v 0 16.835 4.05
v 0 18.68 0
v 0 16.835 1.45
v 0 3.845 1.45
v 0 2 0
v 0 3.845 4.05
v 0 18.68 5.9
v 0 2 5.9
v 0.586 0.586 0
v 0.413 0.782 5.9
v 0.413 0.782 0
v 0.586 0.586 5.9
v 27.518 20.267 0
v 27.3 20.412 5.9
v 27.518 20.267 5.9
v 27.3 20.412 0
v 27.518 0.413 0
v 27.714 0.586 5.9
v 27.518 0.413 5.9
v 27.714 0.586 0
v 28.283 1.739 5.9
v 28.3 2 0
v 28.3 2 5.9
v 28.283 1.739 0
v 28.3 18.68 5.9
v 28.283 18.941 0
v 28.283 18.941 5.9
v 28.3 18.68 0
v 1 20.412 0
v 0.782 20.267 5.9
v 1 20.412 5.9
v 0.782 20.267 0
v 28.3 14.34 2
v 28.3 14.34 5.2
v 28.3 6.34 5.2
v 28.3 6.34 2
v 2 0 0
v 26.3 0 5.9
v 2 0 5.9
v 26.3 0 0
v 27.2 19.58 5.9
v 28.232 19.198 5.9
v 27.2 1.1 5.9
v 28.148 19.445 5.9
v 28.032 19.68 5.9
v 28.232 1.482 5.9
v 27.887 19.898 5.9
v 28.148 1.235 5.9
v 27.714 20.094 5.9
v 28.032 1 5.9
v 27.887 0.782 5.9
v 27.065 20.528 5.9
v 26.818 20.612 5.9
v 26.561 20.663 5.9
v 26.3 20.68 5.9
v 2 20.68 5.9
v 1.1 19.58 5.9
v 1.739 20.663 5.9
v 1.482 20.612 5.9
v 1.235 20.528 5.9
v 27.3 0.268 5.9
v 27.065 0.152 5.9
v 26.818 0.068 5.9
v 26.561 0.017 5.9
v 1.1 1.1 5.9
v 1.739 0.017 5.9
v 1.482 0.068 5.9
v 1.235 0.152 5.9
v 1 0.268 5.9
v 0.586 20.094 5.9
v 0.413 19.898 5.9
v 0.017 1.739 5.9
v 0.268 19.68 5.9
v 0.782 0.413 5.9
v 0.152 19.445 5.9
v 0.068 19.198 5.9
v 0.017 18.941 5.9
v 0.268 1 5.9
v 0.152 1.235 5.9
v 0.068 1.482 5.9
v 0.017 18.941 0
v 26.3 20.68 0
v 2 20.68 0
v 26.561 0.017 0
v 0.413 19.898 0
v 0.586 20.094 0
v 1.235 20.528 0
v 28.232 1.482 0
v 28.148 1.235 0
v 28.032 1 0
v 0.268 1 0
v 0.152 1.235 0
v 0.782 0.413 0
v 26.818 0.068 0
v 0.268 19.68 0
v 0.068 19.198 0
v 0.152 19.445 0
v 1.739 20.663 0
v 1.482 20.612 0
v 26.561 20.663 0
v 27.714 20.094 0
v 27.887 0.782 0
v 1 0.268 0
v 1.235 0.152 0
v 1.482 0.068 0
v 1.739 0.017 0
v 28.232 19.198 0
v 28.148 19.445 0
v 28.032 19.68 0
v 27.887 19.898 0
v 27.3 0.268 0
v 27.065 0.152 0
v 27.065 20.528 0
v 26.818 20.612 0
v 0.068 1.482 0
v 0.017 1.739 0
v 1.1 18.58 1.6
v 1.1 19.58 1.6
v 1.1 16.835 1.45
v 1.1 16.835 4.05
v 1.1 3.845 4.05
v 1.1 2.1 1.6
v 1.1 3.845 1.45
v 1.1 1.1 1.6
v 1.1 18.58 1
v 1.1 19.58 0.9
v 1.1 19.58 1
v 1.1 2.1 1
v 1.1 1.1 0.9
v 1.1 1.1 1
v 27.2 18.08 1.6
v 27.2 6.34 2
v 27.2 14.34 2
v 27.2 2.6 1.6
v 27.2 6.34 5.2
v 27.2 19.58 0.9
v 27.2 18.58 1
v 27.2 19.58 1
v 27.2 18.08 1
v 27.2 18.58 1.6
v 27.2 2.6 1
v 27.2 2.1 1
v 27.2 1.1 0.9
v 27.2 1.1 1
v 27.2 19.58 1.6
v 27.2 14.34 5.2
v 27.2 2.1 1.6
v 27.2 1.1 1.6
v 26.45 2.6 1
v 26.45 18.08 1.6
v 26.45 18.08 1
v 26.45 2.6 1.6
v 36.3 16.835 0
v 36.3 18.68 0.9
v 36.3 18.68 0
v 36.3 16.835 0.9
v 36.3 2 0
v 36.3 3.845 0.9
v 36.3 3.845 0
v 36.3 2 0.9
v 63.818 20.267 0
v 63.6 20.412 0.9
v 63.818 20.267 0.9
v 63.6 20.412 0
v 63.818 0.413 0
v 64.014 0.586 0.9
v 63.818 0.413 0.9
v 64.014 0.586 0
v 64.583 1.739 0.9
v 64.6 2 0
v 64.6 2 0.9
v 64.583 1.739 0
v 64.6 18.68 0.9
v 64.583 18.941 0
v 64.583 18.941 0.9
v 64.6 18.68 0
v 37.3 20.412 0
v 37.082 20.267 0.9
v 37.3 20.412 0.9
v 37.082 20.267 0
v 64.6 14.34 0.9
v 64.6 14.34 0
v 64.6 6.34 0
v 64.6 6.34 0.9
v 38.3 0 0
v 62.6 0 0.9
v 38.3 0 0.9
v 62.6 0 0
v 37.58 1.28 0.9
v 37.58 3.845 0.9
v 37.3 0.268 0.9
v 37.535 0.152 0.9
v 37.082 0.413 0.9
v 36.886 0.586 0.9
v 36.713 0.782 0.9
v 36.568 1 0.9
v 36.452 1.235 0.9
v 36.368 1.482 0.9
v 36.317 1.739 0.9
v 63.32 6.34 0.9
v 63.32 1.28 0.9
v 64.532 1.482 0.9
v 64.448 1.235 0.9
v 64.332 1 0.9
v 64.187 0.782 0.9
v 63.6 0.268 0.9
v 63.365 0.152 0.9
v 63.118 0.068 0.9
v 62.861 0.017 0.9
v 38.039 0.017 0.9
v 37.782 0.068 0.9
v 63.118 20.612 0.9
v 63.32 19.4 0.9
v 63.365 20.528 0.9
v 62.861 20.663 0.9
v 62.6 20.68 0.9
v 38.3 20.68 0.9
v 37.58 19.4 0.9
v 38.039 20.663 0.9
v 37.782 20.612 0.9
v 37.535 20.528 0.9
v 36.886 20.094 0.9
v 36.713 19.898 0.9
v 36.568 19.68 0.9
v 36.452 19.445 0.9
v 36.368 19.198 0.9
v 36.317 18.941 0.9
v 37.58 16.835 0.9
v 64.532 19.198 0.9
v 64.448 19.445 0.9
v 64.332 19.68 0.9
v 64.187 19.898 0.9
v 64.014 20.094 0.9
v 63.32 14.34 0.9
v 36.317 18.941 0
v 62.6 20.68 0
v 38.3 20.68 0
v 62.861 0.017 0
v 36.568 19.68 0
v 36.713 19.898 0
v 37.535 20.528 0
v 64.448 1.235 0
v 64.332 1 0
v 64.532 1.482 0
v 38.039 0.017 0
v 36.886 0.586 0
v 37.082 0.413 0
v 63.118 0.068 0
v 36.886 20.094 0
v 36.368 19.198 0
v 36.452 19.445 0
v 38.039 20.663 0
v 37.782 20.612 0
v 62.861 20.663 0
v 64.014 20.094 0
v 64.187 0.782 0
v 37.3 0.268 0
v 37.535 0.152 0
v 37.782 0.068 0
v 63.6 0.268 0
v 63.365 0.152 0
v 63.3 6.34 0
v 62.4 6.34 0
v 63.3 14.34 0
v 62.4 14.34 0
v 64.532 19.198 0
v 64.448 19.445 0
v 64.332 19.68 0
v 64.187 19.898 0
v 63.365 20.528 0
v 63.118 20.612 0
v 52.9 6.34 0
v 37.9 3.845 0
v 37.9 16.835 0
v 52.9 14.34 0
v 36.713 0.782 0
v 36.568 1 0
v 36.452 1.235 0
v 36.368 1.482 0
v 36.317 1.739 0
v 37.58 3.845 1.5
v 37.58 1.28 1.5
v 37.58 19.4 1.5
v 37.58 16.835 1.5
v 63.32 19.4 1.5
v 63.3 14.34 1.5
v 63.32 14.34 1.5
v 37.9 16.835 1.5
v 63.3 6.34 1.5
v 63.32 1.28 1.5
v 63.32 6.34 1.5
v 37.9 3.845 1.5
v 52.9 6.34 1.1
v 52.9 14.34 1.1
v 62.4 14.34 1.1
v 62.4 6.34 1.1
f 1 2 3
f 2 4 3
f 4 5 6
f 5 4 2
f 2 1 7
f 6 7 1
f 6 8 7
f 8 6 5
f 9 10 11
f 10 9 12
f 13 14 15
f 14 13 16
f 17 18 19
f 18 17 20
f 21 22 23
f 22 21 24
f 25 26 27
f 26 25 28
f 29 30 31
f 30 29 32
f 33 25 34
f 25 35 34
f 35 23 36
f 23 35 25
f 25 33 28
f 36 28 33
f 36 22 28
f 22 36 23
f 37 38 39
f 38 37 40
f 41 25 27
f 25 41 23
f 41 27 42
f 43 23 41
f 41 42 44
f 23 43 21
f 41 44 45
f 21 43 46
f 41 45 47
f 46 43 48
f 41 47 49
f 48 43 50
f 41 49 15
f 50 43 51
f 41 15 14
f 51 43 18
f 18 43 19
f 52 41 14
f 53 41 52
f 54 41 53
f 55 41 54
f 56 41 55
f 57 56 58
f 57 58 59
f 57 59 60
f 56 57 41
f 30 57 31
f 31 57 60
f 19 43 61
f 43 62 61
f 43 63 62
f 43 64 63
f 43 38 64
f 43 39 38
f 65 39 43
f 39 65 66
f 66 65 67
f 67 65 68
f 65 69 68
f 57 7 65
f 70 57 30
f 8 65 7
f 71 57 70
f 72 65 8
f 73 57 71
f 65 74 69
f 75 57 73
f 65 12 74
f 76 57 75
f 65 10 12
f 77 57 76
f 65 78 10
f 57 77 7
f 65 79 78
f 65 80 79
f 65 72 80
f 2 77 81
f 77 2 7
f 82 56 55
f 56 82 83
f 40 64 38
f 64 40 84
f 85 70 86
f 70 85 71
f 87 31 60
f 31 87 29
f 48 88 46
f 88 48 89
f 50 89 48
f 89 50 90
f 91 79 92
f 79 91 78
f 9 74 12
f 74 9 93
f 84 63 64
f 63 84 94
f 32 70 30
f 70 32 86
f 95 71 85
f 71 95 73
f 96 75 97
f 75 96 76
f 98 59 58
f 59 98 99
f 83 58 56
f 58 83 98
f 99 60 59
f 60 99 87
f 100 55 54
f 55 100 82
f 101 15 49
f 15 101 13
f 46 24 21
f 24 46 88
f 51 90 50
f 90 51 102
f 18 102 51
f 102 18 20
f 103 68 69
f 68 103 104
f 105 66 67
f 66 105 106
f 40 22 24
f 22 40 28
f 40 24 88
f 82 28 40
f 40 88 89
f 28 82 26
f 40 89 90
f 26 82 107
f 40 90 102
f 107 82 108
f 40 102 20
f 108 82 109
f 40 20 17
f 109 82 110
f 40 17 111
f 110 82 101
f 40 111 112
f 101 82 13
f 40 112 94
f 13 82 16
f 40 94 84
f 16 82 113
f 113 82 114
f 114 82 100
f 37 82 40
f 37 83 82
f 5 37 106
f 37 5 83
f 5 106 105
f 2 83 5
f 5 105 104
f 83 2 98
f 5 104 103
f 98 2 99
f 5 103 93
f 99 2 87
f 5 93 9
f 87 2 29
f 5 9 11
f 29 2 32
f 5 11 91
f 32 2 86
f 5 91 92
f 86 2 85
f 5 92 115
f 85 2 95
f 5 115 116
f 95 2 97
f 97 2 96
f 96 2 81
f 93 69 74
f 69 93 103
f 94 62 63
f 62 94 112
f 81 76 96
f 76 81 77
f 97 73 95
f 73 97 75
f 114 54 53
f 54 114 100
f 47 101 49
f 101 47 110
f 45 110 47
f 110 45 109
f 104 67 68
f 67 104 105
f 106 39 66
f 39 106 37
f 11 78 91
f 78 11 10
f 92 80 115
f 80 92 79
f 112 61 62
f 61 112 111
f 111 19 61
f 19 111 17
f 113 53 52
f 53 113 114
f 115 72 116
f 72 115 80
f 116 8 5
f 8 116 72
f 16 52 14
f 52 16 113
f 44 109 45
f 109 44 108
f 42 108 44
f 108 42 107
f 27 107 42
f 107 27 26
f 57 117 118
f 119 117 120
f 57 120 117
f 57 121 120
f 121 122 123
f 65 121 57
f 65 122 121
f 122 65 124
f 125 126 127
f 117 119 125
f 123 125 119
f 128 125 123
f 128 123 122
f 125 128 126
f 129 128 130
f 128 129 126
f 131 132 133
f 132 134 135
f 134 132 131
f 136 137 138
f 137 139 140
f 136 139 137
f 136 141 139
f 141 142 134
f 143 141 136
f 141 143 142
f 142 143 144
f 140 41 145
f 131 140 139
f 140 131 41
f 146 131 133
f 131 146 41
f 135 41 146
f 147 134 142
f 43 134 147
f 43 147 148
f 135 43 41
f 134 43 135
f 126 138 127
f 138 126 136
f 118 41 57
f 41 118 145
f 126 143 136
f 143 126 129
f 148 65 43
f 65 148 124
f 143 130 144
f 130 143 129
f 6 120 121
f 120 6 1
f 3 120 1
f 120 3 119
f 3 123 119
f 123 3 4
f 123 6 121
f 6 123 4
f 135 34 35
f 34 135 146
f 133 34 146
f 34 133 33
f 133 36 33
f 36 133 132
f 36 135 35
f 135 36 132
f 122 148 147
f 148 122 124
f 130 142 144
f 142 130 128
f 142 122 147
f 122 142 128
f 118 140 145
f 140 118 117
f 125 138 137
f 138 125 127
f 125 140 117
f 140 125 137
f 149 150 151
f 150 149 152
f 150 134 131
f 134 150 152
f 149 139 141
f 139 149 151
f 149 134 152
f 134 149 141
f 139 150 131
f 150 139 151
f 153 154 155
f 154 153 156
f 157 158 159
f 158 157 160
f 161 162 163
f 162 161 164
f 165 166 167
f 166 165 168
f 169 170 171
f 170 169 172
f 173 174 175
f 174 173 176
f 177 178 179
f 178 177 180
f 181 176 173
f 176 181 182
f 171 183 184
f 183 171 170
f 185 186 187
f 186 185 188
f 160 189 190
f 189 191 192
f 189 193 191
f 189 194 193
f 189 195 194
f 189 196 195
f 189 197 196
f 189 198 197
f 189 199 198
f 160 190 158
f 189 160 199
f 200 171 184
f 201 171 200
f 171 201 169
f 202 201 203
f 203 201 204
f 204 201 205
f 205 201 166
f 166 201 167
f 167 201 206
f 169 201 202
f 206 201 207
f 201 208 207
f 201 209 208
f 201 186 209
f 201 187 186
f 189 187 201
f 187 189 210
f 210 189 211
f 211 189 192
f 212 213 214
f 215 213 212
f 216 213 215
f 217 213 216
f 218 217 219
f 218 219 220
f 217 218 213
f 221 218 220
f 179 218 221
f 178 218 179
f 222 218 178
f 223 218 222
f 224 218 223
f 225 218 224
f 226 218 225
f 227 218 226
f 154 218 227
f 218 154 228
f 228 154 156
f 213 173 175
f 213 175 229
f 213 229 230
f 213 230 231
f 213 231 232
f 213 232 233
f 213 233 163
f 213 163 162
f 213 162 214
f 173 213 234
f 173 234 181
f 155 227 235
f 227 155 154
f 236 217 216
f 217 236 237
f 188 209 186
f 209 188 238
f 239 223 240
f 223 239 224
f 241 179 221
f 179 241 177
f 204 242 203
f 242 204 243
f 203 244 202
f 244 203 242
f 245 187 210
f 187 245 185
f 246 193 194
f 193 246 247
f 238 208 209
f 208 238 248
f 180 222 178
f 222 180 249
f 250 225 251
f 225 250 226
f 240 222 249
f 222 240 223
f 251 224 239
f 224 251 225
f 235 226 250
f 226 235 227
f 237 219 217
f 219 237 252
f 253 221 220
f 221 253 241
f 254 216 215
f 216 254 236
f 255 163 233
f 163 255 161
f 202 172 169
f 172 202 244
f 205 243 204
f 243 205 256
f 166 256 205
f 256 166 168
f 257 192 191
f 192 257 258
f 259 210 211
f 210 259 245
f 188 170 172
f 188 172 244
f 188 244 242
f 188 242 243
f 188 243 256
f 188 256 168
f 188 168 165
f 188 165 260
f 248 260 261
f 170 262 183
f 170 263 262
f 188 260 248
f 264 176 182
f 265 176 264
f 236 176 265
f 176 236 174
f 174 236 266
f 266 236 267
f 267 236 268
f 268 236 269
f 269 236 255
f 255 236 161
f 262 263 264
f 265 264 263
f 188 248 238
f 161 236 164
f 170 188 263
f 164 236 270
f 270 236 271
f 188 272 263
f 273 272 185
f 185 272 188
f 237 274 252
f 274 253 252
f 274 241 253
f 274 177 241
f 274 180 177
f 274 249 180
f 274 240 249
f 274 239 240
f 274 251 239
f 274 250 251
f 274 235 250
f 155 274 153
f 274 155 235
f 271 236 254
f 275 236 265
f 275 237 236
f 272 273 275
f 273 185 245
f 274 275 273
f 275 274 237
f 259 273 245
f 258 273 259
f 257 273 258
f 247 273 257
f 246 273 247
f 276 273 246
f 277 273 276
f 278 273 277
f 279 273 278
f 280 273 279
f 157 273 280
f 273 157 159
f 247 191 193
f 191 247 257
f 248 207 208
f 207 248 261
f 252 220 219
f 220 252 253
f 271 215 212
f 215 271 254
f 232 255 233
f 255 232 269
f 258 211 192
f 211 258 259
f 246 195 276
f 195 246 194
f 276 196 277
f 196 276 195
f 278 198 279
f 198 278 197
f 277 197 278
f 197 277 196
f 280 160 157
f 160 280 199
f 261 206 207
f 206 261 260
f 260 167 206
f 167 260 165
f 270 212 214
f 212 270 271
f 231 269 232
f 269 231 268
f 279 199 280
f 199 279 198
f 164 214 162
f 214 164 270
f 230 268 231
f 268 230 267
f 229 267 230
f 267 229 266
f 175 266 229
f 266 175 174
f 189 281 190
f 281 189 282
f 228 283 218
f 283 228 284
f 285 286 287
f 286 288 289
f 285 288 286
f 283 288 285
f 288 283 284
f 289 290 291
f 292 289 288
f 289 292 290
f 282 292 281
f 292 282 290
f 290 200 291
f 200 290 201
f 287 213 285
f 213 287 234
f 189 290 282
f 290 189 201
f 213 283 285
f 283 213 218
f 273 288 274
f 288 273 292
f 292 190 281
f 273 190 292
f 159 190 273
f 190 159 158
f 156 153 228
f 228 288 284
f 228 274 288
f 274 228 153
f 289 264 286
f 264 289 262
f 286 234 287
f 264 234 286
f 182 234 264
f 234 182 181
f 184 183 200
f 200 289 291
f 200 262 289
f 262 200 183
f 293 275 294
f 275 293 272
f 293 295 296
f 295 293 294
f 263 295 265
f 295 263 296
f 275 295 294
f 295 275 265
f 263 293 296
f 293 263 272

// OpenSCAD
/*
USB RP2040 (4M) dongle-style board enclosure - v2
Based on user's reference drawing.

Unit: mm

Reference dimensions read from the image:
- Main PCB body: 25.40 x 17.78 mm
- USB plug/tongue section length: 12.70 mm
- USB plug/tongue section width: 12.19 mm
- Total board length: 38.10 mm
- Pin row span shown: 20.32 mm

Design goal:
- Small and thin enclosure.
- Front USB plug area is considered: USB tongue is exposed, shell starts behind it.
- Rear wire harness exit hole is reserved.
- Two-piece shell: bottom tray + top cover.

Important:
Different USB RP2040 4M clones may vary slightly. First print a test ring or print at low height
to verify USB cutout and board fit before final printing.
*/

$fn = 48;

// ======================================================
// 1. Board parameters from image
// ======================================================
main_len = 25.40;          // right/main rounded PCB length
main_w   = 17.78;          // main PCB width
usb_len  = 12.70;          // left USB plug section length
usb_w    = 12.19;          // left USB plug section width
board_thick = 1.20;

// FDM clearance
fit_clearance = 0.35;      // per side
z_clearance = 0.25;

// ======================================================
// 2. Case dimensions
// ======================================================
wall = 1.10;               // minimum practical FDM wall, 0.4 nozzle ~3 lines
bottom_thick = 0.90;
top_thick = 0.90;
corner_r = 2.00;

// board vertical spaces
bottom_air = 0.70;
top_air = 3.10;            // room for chips / connector / solder
tray_z = bottom_thick + bottom_air + board_thick + top_air;   // ~5.9
cover_lip_z = 0.60;
total_z = tray_z + top_thick;                                 // ~6.8

// Shell only covers the main PCB body. USB plug stays exposed.
inner_len = main_len + fit_clearance * 2;
inner_w   = main_w + fit_clearance * 2;

outer_len = inner_len + wall * 2;     // ~29.0
outer_w   = inner_w + wall * 2;       // ~20.7

// USB-front opening. The case front wall has a notch for the 12.19 mm wide USB tongue.
usb_notch_w = usb_w + 0.80;
usb_notch_h = 2.60;                   // vertical opening near PCB plane
usb_notch_z = bottom_thick + bottom_air - 0.15;

// Rear wiring harness slot.
// If the actual cable is thicker, increase harness_slot_w / h.
harness_slot_w = 8.00;
harness_slot_h = 3.20;
harness_slot_z = bottom_thick + bottom_air + 0.40;

// Optional top connector window for wiring/soldering access.
top_wire_window = true;
top_window_len = 9.50;
top_window_w = 8.00;

// Optional small side relief slots for GPIO/soldered side wires.
side_wire_slots = false;
side_slot_len = 16.00;
side_slot_h = 2.20;
side_slot_z = bottom_thick + bottom_air + board_thick + 0.30;

// ======================================================
// 3. Helpers
// ======================================================
module rounded_box(l, w, z, r) {
    hull() {
        translate([r, r, 0]) cylinder(h=z, r=r);
        translate([l-r, r, 0]) cylinder(h=z, r=r);
        translate([l-r, w-r, 0]) cylinder(h=z, r=r);
        translate([r, w-r, 0]) cylinder(h=z, r=r);
    }
}

module usb_tongue_reference() {
    // Pure reference only, not printed unless enabled at bottom.
    color([0.02,0.02,0.02,0.35])
    translate([-usb_len, (outer_w-usb_w)/2, bottom_thick + bottom_air])
        cube([usb_len, usb_w, board_thick]);
}

module main_board_reference() {
    color([0,0.45,0.1,0.35])
    translate([wall + fit_clearance, wall + fit_clearance, bottom_thick + bottom_air])
        cube([main_len, main_w, board_thick]);
}

// ======================================================
// 4. Bottom tray
// ======================================================
module bottom_tray() {
    difference() {
        rounded_box(outer_len, outer_w, tray_z, corner_r);

        // Main board cavity, open from top
        translate([wall, wall, bottom_thick])
            cube([inner_len, inner_w, tray_z + 0.30]);

        // Front USB notch/opening at x=0.
        // This allows the exposed USB tongue to leave the enclosure.
        translate([-0.20, (outer_w-usb_notch_w)/2, usb_notch_z])
            cube([wall + 0.70, usb_notch_w, usb_notch_h]);

        // Rear wire harness outlet at x=outer_len.
        translate([outer_len - wall - 0.20, (outer_w-harness_slot_w)/2, harness_slot_z])
            cube([wall + 0.70, harness_slot_w, harness_slot_h]);

        // Optional long-side wire exits
        if (side_wire_slots) {
            translate([(outer_len-side_slot_len)/2, -0.20, side_slot_z])
                cube([side_slot_len, wall + 0.60, side_slot_h]);

            translate([(outer_len-side_slot_len)/2, outer_w-wall-0.30, side_slot_z])
                cube([side_slot_len, wall + 0.70, side_slot_h]);
        }
    }

    // Minimal board support ledges instead of screw posts to save space.
    // These avoid blocking parts on tiny boards.
    ledge_w = 1.00;
    ledge_h = 0.60;
    ledge_z = bottom_thick + bottom_air - ledge_h;

    translate([wall, wall, ledge_z])
        cube([inner_len, ledge_w, ledge_h]);

    translate([wall, wall + inner_w - ledge_w, ledge_z])
        cube([inner_len, ledge_w, ledge_h]);

    // Small rear stop to stop board sliding backward
    translate([outer_len - wall - 0.75, wall + 1.5, ledge_z])
        cube([0.75, inner_w - 3.0, ledge_h]);
}

// ======================================================
// 5. Top cover
// ======================================================
module top_cover() {
    lip_clearance = 0.18;

    difference() {
        union() {
            rounded_box(outer_len, outer_w, top_thick, corner_r);

            // Inset lip into tray
            translate([wall + lip_clearance, wall + lip_clearance, top_thick])
                cube([
                    inner_len - lip_clearance * 2,
                    inner_w   - lip_clearance * 2,
                    cover_lip_z
                ]);
        }

        // Front USB relief mirrored on cover
        translate([-0.20, (outer_w-usb_notch_w)/2, -0.10])
            cube([wall + 0.70, usb_notch_w, top_thick + cover_lip_z + 0.30]);

        // Rear wiring relief mirrored on cover
        translate([outer_len - wall - 0.20, (outer_w-harness_slot_w)/2, -0.10])
            cube([wall + 0.70, harness_slot_w, top_thick + cover_lip_z + 0.30]);

        // Optional top access window for rear connector / wire solder area
        if (top_wire_window) {
            translate([outer_len - top_window_len - 2.2, (outer_w-top_window_w)/2, -0.10])
                cube([top_window_len, top_window_w, top_thick + 0.30]);
        }
    }
}

// ======================================================
// 6. Print layout
// ======================================================
// Left: bottom tray
// Right: top cover
bottom_tray();

translate([outer_len + 8, 0, 0])
    top_cover();

// Uncomment for reference preview only:
// usb_tongue_reference();
// main_board_reference();
